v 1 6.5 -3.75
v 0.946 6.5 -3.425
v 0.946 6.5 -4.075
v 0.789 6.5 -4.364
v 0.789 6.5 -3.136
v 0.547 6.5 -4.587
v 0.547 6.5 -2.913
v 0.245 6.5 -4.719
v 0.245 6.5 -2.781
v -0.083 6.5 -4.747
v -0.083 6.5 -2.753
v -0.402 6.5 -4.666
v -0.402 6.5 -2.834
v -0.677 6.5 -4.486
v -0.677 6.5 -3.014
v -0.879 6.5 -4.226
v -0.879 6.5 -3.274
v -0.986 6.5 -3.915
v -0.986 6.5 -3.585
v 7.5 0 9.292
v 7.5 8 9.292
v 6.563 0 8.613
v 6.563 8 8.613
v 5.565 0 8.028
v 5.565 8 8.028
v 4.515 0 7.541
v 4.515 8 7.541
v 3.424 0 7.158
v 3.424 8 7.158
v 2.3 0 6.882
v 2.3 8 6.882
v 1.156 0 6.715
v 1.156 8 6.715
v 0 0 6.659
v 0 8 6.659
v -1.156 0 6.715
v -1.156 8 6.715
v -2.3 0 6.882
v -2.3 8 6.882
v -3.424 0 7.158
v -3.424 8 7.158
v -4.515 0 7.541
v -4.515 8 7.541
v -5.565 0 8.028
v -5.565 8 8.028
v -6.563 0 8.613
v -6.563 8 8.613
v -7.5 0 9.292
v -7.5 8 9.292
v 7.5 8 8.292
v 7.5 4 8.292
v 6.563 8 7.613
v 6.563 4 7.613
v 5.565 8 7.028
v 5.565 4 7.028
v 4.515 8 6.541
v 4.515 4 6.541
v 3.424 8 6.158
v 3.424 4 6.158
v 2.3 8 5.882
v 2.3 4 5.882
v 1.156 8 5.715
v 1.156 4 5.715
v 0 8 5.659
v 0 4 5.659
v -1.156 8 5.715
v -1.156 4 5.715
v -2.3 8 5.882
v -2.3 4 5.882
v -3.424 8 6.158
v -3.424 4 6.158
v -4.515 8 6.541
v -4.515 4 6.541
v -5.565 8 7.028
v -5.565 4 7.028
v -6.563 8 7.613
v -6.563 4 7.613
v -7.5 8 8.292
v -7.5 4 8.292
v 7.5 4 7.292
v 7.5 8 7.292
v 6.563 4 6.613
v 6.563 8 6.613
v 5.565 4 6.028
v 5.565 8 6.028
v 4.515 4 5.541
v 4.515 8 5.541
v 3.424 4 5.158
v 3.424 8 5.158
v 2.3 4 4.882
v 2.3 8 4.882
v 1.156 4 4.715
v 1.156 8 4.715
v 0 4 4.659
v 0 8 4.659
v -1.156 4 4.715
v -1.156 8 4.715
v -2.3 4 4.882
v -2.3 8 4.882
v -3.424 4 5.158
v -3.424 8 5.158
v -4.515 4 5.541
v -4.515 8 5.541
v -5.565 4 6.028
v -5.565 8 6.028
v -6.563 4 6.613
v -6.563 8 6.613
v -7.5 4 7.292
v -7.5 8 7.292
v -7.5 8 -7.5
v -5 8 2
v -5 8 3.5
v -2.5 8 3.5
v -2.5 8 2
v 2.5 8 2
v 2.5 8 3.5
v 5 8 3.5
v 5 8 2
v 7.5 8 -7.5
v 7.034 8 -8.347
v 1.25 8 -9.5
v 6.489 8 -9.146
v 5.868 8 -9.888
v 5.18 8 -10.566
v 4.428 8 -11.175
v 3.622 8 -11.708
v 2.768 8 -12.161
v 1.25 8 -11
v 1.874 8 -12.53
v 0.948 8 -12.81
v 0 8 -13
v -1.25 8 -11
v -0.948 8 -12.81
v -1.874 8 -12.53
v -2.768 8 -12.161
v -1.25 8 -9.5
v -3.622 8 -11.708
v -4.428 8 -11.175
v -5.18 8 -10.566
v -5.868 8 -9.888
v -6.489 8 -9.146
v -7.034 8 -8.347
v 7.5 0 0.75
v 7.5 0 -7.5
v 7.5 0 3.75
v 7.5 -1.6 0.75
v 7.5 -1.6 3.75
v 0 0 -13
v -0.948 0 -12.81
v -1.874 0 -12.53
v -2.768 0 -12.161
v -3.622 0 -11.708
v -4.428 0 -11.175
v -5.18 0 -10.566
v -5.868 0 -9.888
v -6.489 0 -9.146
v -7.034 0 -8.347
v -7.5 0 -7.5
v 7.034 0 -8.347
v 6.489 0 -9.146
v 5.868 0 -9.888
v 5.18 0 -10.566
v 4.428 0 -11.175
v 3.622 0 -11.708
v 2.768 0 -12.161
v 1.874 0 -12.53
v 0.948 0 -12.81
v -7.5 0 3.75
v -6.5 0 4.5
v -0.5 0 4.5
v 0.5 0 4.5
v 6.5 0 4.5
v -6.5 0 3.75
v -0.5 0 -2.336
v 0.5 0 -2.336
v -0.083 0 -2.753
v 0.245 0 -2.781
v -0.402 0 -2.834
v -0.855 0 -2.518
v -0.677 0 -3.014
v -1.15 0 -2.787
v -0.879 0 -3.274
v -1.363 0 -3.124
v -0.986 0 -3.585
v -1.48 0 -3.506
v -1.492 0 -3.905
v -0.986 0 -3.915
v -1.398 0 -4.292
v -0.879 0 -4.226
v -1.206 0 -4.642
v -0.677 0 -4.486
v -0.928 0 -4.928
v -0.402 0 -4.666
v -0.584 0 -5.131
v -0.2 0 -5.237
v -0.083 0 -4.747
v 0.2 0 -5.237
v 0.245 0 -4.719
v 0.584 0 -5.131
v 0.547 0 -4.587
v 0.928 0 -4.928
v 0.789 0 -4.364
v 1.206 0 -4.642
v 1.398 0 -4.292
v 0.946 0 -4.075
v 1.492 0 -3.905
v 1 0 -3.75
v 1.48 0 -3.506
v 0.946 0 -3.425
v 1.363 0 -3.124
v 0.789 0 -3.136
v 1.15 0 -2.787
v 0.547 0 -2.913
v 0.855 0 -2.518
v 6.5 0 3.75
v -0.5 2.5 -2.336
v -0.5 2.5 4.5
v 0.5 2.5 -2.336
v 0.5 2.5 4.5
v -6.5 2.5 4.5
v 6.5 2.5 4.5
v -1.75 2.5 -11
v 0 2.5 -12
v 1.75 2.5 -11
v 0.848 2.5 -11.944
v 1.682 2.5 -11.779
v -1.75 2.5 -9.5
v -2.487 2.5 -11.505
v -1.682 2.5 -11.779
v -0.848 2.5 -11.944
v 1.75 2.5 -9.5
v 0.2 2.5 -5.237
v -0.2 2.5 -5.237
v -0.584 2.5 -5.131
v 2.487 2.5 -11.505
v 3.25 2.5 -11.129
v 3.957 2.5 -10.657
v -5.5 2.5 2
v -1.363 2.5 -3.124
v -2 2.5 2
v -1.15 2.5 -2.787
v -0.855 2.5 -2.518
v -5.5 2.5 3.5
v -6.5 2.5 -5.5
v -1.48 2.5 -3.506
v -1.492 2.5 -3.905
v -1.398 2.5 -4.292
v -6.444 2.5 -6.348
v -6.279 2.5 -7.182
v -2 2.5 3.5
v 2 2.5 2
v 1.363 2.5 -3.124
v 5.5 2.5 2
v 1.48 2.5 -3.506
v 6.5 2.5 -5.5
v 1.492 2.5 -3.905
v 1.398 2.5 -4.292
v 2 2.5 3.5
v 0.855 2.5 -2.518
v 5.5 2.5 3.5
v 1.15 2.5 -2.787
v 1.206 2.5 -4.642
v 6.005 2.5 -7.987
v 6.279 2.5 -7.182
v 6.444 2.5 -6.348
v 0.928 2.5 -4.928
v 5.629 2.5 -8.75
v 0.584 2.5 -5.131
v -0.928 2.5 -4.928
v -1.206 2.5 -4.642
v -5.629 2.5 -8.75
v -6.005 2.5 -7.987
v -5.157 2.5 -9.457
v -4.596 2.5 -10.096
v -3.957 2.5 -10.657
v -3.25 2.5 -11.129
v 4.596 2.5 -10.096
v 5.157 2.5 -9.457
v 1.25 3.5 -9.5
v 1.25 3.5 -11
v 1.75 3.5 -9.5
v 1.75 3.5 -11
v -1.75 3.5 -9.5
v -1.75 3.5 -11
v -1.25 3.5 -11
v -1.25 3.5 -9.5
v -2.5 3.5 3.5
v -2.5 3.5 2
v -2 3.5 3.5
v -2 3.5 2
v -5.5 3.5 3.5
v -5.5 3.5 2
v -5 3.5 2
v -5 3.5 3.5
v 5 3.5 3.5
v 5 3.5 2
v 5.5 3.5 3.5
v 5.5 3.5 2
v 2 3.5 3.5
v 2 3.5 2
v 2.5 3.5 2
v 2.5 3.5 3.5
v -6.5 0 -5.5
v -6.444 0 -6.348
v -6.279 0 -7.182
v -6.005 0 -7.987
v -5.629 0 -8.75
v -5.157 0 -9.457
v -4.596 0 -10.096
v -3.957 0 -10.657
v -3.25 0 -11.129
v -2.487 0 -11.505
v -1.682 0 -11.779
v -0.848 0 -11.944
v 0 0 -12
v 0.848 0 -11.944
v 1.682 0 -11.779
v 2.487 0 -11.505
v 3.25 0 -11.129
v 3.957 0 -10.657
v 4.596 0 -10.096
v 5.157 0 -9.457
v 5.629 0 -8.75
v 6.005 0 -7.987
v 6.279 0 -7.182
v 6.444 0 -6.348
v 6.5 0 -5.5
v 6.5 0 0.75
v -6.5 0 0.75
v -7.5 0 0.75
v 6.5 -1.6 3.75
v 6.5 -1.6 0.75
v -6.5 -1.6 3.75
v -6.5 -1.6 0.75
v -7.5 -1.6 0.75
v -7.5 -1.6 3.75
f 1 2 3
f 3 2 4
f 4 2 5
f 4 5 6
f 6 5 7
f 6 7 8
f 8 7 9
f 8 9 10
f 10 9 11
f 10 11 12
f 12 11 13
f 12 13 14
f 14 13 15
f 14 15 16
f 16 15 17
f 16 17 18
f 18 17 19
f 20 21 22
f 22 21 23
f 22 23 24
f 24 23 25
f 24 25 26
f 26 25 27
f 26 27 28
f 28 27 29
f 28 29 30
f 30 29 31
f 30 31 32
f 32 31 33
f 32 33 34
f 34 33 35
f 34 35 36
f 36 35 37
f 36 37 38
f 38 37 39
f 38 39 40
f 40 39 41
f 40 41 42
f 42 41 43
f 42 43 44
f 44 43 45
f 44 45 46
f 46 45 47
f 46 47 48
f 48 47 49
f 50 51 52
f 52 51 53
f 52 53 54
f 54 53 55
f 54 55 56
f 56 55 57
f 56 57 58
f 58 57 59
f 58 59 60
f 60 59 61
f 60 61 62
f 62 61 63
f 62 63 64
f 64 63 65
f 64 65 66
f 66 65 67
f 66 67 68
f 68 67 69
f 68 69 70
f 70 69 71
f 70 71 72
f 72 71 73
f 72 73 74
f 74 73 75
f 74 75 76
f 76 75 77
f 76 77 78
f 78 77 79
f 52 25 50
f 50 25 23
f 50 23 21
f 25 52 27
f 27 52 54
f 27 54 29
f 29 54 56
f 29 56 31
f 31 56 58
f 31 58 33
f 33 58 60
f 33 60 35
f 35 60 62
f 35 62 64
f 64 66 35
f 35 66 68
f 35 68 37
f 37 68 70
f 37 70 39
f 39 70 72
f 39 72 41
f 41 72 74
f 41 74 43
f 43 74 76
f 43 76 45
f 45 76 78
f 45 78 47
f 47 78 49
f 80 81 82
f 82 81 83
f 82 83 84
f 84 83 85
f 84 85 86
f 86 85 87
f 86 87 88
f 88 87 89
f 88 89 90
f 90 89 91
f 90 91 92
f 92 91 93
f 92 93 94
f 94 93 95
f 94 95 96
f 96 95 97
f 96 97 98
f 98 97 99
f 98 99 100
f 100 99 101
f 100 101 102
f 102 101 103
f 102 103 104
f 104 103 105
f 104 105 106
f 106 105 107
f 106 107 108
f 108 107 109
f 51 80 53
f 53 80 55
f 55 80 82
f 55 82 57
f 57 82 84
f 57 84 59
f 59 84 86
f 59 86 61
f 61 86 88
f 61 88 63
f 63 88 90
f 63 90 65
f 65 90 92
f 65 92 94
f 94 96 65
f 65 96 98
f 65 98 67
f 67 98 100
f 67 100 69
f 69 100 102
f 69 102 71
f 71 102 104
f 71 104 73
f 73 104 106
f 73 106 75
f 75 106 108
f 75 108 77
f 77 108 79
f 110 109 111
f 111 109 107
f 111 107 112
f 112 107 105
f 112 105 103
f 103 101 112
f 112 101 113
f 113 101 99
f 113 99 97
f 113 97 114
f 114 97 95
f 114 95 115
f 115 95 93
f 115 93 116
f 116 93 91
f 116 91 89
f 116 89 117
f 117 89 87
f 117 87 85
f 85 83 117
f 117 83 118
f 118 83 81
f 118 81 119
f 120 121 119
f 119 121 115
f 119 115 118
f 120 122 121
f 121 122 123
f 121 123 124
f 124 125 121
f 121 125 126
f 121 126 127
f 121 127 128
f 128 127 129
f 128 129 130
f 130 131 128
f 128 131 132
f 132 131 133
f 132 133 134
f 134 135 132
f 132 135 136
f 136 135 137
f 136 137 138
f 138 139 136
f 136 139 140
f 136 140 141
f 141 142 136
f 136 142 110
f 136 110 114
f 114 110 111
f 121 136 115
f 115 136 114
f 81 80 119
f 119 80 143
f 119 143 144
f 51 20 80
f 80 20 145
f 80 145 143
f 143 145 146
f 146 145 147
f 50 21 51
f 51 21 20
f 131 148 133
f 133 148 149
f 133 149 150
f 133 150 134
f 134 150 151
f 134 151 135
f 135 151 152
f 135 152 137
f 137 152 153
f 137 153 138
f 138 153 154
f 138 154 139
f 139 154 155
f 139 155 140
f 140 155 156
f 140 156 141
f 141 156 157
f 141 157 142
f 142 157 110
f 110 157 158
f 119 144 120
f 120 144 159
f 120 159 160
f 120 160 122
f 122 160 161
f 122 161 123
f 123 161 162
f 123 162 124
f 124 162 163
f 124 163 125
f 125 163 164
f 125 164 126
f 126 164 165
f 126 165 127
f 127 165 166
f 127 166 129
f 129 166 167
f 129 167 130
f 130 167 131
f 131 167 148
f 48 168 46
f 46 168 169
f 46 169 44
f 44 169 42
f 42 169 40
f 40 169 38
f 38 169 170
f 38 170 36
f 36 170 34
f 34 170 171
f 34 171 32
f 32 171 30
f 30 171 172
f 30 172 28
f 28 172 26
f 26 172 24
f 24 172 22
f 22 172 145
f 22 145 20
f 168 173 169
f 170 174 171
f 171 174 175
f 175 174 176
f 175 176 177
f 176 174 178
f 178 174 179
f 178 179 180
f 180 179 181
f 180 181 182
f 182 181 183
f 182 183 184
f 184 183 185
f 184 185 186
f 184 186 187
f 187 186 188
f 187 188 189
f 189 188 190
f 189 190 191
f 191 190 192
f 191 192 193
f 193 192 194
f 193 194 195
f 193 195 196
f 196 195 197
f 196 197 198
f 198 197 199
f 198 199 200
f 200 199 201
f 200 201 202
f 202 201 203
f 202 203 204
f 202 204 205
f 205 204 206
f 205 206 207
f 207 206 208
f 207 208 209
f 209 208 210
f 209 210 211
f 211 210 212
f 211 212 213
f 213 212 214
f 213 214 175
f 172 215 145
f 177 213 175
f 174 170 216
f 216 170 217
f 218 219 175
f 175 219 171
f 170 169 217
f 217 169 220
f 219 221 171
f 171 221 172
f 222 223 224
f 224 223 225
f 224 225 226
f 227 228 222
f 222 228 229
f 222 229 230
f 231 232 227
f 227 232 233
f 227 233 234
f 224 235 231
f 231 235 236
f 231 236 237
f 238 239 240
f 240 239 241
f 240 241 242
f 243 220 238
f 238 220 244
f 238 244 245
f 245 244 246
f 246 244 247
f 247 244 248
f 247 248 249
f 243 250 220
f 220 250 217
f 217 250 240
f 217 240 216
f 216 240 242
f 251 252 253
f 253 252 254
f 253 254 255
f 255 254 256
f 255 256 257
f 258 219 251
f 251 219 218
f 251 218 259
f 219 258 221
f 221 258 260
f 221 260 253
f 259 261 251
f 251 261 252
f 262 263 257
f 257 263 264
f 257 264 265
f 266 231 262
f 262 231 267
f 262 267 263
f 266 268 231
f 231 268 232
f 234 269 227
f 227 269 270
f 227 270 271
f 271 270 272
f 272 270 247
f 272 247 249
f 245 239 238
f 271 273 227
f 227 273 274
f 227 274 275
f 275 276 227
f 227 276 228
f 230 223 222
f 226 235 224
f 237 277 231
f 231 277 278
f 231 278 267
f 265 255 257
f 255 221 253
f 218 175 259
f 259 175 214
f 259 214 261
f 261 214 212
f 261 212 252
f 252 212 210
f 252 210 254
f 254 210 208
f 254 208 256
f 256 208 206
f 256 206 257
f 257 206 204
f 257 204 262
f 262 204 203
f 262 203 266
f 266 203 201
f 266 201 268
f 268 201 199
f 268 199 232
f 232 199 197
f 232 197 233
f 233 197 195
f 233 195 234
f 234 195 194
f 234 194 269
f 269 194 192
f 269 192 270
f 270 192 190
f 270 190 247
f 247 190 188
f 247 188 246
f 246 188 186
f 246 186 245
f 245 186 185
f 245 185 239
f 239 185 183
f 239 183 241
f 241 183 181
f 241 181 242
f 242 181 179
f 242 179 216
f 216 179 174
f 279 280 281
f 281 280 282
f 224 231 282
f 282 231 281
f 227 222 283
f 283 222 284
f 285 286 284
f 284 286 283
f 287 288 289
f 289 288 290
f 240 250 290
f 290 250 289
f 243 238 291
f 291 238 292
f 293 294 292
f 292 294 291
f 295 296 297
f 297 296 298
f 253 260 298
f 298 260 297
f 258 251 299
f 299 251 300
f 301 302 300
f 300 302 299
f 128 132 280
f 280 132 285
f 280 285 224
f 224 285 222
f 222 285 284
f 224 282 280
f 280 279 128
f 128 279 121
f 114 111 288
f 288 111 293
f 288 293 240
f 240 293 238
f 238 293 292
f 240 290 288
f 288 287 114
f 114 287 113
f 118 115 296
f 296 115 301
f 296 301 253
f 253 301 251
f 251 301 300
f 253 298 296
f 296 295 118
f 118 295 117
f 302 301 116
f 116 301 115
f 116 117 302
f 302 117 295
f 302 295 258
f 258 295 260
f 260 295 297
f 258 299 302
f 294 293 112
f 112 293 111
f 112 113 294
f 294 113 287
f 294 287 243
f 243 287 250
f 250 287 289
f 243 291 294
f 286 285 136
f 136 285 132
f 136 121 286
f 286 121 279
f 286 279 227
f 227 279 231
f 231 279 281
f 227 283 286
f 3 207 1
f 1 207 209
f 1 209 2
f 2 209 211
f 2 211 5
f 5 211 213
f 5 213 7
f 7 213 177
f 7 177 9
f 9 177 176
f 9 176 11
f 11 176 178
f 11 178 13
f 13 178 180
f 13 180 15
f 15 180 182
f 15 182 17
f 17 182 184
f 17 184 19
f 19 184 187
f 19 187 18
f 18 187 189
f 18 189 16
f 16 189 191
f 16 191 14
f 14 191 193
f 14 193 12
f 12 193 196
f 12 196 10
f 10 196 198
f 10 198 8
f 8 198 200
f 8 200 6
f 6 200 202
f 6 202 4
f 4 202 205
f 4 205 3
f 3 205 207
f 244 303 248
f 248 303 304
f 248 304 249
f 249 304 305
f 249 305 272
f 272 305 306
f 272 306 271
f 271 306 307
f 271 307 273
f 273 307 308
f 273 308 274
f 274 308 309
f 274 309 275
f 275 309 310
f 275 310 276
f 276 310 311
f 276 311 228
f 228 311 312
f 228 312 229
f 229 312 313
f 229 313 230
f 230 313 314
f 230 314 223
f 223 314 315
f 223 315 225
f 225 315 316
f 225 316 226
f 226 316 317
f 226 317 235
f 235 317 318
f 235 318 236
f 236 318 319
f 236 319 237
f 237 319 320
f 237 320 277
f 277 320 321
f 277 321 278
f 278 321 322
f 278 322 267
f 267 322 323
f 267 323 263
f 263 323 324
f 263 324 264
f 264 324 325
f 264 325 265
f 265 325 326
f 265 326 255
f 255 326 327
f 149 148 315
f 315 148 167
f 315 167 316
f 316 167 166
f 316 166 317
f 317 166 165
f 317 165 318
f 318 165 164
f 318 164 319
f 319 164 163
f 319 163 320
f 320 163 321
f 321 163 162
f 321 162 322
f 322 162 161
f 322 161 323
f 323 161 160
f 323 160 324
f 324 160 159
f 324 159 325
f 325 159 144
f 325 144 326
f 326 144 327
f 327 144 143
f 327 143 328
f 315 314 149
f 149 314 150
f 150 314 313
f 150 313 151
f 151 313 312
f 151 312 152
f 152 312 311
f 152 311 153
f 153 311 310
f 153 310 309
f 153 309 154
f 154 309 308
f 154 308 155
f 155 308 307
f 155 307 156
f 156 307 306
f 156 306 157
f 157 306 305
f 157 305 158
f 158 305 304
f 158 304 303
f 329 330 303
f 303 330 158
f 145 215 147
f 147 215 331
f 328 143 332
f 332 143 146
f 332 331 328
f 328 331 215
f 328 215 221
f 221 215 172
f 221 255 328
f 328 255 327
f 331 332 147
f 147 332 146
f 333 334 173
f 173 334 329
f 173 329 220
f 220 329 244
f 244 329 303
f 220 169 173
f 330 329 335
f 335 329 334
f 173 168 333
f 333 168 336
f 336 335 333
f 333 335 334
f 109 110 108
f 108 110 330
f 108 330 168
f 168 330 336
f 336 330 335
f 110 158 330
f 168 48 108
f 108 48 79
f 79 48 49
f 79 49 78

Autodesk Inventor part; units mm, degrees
ref_plane "YZ Plane" through (0, 0, 0) normal (1, 0, 0) x (0, 1, 0)
ref_plane "XZ Plane" through (0, 0, 0) normal (0, 1, 0) x (-1, 0, 0)
ref_plane "XY Plane" through (0, 0, 0) normal (0, 0, 1) x (1, 0, 0)
sketch "Sketch1" plane through (0, 0, 0) normal (0, 1, 0) x (-1, 0, 0)
  line L0 (-7.5, 5.5) -> (7.5, 5.5)
  line L1 (7.5, 5.5) -> (7.5, -5.5)
  line L2 (7.5, -5.5) -> (-7.5, -5.5)
  line L3 (-7.5, -5.5) -> (-7.5, 5.5)
  line L4 (-7.5, 5.5) -> (7.5, -5.5) construction
  line L5 (7.5, 5.5) -> (-7.5, -5.5) construction
  circle A0 centre (0, -5.5) radius 7.5 construction
  arc A1 (-7.5, -5.5) -> (7.5, -5.5) centre (0, -5.5) ccw
  point P0 (0, 0)
  dimension "d0" = 11
  dimension "d1" = 15
extrude "Extrusion1" add sketch "Sketch1" along normal blind 8
sketch "Sketch2" plane through (0, 0, 0) normal (0, -1, 0) x (1, 0, 0)
  line L0 (7.5, 9.25) -> (-7.5, 9.25)
  line L1 (-7.5, 9.25) -> (-7.5, -20.75)
  line L2 (-7.5, -20.75) -> (7.5, -20.75)
  line L3 (7.5, -20.75) -> (7.5, 9.25)
  line L4 (7.5, 9.25) -> (-7.5, -20.75) construction
  line L5 (-7.5, 9.25) -> (7.5, -20.75) construction
  line L6 (-7.5, 5.5) -> (7.5, 5.5) projected
  line L7 (7, 8.75) -> (-7, 8.75) construction
  line L8 (-7, 8.75) -> (-7, -20.25) construction
  line L9 (-7, -20.25) -> (7, -20.25) construction
  line L10 (7, -20.25) -> (7, 8.75) construction
  line L11 (7, 8.75) -> (-7, -20.25) construction
  line L12 (-7, 8.75) -> (7, -20.25) construction
  point P0 (0, 0)
  point P1 (0, -5.75)
  dimension "d4" = 15
  dimension "d5" = 30
  dimension "d6" = 3.75
  dimension "d18" = 0.5
  dimension "d19" = 0.5
sketch "Sketch4" plane through (0, 0, 0) normal (0, -1, 0) x (1, 0, 0)
  line L0 (-7.5, -5.5) -> (-7.5, 5.5) projected
  line L1 (-7.5, 3.75) -> (-6.5, 3.75)
  line L2 (-6.5, 3.75) -> (-6.5, 0.75)
  line L3 (-6.5, 0.75) -> (-7.5, 0.75)
  line L4 (-7.5, 0.75) -> (-7.5, 3.75)
  line L5 (7.5, 5.5) -> (7.5, -5.5) projected
  line L6 (7.5, 0.75) -> (6.5, 0.75)
  line L7 (6.5, 0.75) -> (6.5, 3.75)
  line L8 (6.5, 3.75) -> (7.5, 3.75)
  line L9 (7.5, 3.75) -> (7.5, 0.75)
  line L10 (-7.5, -20.25) -> (7.5, -20.25) construction
  line L11 (7.5, -20.25) -> (7.5, 9.75) construction
  line L12 (7.5, 9.75) -> (-7.5, 9.75) construction
  line L13 (-7.5, 9.75) -> (-7.5, -20.25) construction
  line L14 (-7.5, -20.25) -> (7.5, 9.75) construction
  line L15 (7.5, -20.25) -> (-7.5, 9.75) construction
  line L16 (-7.5, 5.5) -> (7.5, 5.5) construction
  arc A0 (-7.5, -5.5) -> (7.5, -5.5) centre (0, -5.5) ccw construction
  point P0 (0, 0)
  point P1 (0, -5.25)
  point P2 (0, -13)
  point P3 (-7, 3.75)
  point P4 (-7.5, 0.75)
  point P5 (-7, 0.75)
  point P6 (7.5, 3.75)
  point P7 (-7.5, 0.75)
  dimension "d20" = 1
  dimension "d21" = 3
  dimension "d22" = 1
  dimension "d23" = 3
  dimension "d24" = 15
  dimension "d25" = 30
  dimension "d27" = 7.25
  dimension "d106" = 0.75
extrude "Extrusion3" add sketch "Sketch4" along normal blind 1.6
sketch "Sketch6" plane through (0, 0, 0) normal (0, -1, 0) x (1, 0, 0)
  line L0 (7.5, 11.25) -> (-7.5, 11.25)
  line L1 (-7.5, 11.25) -> (-7.5, -18.75)
  line L2 (-7.5, -18.75) -> (7.5, -18.75)
  line L3 (7.5, -18.75) -> (7.5, 11.25)
  line L4 (7.5, 11.25) -> (-7.5, -18.75) construction
  line L5 (-7.5, 11.25) -> (7.5, -18.75) construction
  line L6 (7, 10.75) -> (-7, 10.75) construction
  line L7 (-7, 10.75) -> (-7, -18.25) construction
  line L8 (-7, -18.25) -> (7, -18.25) construction
  line L9 (7, -18.25) -> (7, 10.75) construction
  line L10 (7, 10.75) -> (-7, -18.25) construction
  line L11 (-7, 10.75) -> (7, -18.25) construction
  circle A0 centre (0, -3.75) radius 1
  circle A1 centre (0, -3.75) radius 1.5
  line L12 (-6.5, 4.5) -> (6.5, 4.5)
  line L13 (6.5, 4.5) -> (6.5, -5.5)
  line L14 (6.5, -5.5) -> (-6.5, -5.5)
  line L15 (-6.5, -5.5) -> (-6.5, 4.5)
  line L16 (-7.5, 5.5) -> (7.5, 5.5) projected
  arc A2 (-7.5, -5.5) -> (7.5, -5.5) centre (0, -5.5) ccw projected
  circle A3 centre (0, -5.5) radius 6.5
  point P0 (0, 0)
  point P1 (-7.5, -3.75)
  point P2 (6.5, -5.5)
  dimension "d31" = 15
  dimension "d32" = 30
  dimension "d34" = 0.5
  dimension "d35" = 0.5
  dimension "d36" = 2
  dimension "d37" = 0.5
  dimension "d38" = 1
  dimension "d39" = 1
  dimension "d40" = 1
  dimension "d41" = 1
  dimension "d107" = 3.75
extrude "Extrusion4" cut sketch "Sketch6" against normal blind 2.5 contours A0 | L12 L13 A3 L15 | A3 L14 | L14 A3
sketch "Sketch10" plane through (0, 8, 0) normal (0, 1, 0) x (1, 0, 0)
  point P0 (0, 0)
sketch "Sketch11" plane through (0, 0, 0) normal (0, -1, 0) x (1, 0, 0)
  line L0 (-5, 3.5) -> (-2.5, 3.5)
  line L1 (-2.5, 3.5) -> (-2.5, 2)
  line L2 (-2.5, 2) -> (-5, 2)
  line L3 (-5, 2) -> (-5, 3.5)
  line L4 (2.5, 3.5) -> (5, 3.5)
  line L5 (5, 3.5) -> (5, 2)
  line L6 (5, 2) -> (2.5, 2)
  line L7 (2.5, 2) -> (2.5, 3.5)
  line L8 (-6.5, 3.75) -> (-7.5, 3.75) projected
  line L9 (-6.5, 0.75) -> (-6.5, 3.75) projected
  line L10 (6.5, 3.75) -> (6.5, 0.75) projected
  line L11 (-6.5, 4.5) -> (6.5, 4.5) projected
  line L12 (-1.25, -11) -> (1.25, -11)
  line L13 (1.25, -11) -> (1.25, -9.5)
  line L14 (1.25, -9.5) -> (-1.25, -9.5)
  line L15 (-1.25, -9.5) -> (-1.25, -11)
  circle A0 centre (0, -3.75) radius 1 projected
  point P0 (0, 0)
  point P1 (-3.75, 3.5)
  point P2 (3.75, 3.5)
  point P3 (1.25, -10.25)
  point P4 (2.5, 2.75)
  point P5 (0, -9.5)
  point P6 (3.75, 2)
  point P7 (-2.5, 2.75)
  dimension "d51" = 2.5
  dimension "d52" = 1.5
  dimension "d55" = 2.75
  dimension "d56" = 2.75
  dimension "d60" = 13
  dimension "d61" = 3.75
  dimension "d62" = 3.75
  dimension "d103" = 6.5
  dimension "d104" = 6.5
extrude "Extrusion8" cut sketch "Sketch11" against normal blind 10 contours L0 L1 L2 L3 | L4 L5 L6 L7 | L15 L14 L13 L12
sketch "Sketch12" plane through (0, 2.5, 0) normal (0, -1, 0) x (1, 0, 0)
  line L0 (5, 2) -> (5, 3.5) construction
  line L1 (2.5, 2) -> (5, 2) construction
  line L2 (5, 3.5) -> (2.5, 3.5) construction
  line L3 (2.5, 3.5) -> (2.5, 2) construction
  line L4 (2.5, 2) -> (5, 2) construction
  line L5 (5, 2) -> (5, 3.5) construction
  line L6 (-2.5, 2) -> (-2.5, 3.5) construction
  line L7 (-2.5, 2) -> (-5, 2) construction
  line L8 (-2.5, 3.5) -> (-5, 3.5) construction
  line L9 (-5, 3.5) -> (-5, 2) construction
  line L10 (-5, 2) -> (-2.5, 2) construction
  line L11 (-2.5, 2) -> (-2.5, 3.5) construction
  line L12 (-1.25, -9.5) -> (1.25, -9.5) construction
  line L13 (-1.25, -9.5) -> (-1.25, -11) construction
  line L14 (1.25, -9.5) -> (-1.25, -9.5) construction
  line L15 (-1.25, -9.5) -> (-1.25, -11) construction
  line L16 (-1.25, -11) -> (1.25, -11) construction
  line L17 (1.25, -11) -> (1.25, -9.5) construction
  line L18 (5.5, 3.5) -> (2, 3.5)
  line L19 (2, 3.5) -> (2, 2)
  line L20 (2, 2) -> (5.5, 2)
  line L21 (5.5, 2) -> (5.5, 3.5)
  line L22 (1.75, -9.5) -> (-1.75, -9.5)
  line L23 (-1.75, -9.5) -> (-1.75, -11)
  line L24 (-1.75, -11) -> (1.75, -11)
  line L25 (1.75, -11) -> (1.75, -9.5)
  line L26 (-2, 3.5) -> (-5.5, 3.5)
  line L27 (-5.5, 3.5) -> (-5.5, 2)
  line L28 (-5.5, 2) -> (-2, 2)
  line L29 (-2, 2) -> (-2, 3.5)
  point P0 (0, 0)
  point P1 (-2.5, 2.75)
  point P2 (-2, 2.75)
  point P3 (-3.75, 2)
  point P4 (-3.75, 2)
  point P5 (-3.75, 3.5)
  point P6 (-3.75, 3.5)
  point P7 (-5, 2.75)
  point P8 (-5.5, 2.75)
  point P9 (1.25, -10.25)
  point P10 (1.75, -10.25)
  point P11 (0, -11)
  point P12 (-1.25, -10.25)
  dimension "d63" = 0.5
  dimension "d64" = 0
  dimension "d65" = 0
  dimension "d67" = 0.5
  dimension "d68" = 0
  dimension "d69" = 0
  dimension "d70" = 0.5
  dimension "d71" = 0.5
  dimension "d72" = 0
  dimension "d73" = 0
  dimension "d74" = 0.5
  dimension "d96" = 0.5
extrude "Extrusion9" cut sketch "Sketch12" against normal blind 1
sketch "Sketch16" plane through (0, 2.5, 0) normal (0, -1, 0) x (1, 0, 0)
  line L0 (-6.5, -5.5) -> (-6.5, 4.5) construction
  line L1 (-6.5, 4.5) -> (6.5, 4.5) construction
  line L2 (-6.5, 4.5) -> (6.5, 4.5) construction
  line L3 (-0.5, 4.5) -> (0.5, 4.5)
  line L4 (0.5, 4.5) -> (0.5, -2.75)
  line L5 (0.5, -2.75) -> (-0.5, -2.75)
  line L6 (-0.5, -2.75) -> (-0.5, 4.5)
  circle A0 centre (0, -3.75) radius 1.5 construction
  circle A1 centre (0, -3.75) radius 1.75 construction
  line L7 (-6.5, -2.75) -> (6.5174, -2.75) construction
  circle A2 centre (0, -3.75) radius 1.5 construction
  circle A3 centre (0, -3.75) radius 1 construction
  line L8 (6.5, 0.75) -> (6.5, -5.5) projected
  line L9 (-6.5, -5.873) -> (6.5, -5.873)
  line L10 (6.5, -5.873) -> (6.5, -6.873)
  line L11 (6.5, -6.873) -> (-6.5, -6.873)
  line L12 (-6.5, -6.873) -> (-6.5, -5.873)
  point P0 (0, 0)
  point P1 (0, 4.5)
  point P2 (0.0087, -2.75)
  dimension "d94" = 1
  dimension "d95" = 1
extrude "Extrusion10" add sketch "Sketch16" along normal blind 2.5 contours L3 L4 L5 L6
sketch "Sketch19" plane through (-7.5, 0, 5.5) normal (0, 0, 1) x (1, 0, 0)
  line L0 (15, 0) -> (15, 8) projected
  line L1 (0, 8) -> (15, 8)
  line L2 (15, 8) -> (15, 0)
  line L3 (15, 0) -> (0, 0)
  line L4 (0, 0) -> (0, 8)
  point P0 (7.5, 0)
extrude "Extrusion13" add sketch "Sketch19" along normal blind 6
sketch "Sketch18" plane through (0, 8, 0) normal (0, 1, 0) x (1, 0, 0)
  line L0 (-7.5, -3.75) -> (-7.5, -5.5) projected
  line L1 (-7.5, -5.5) -> (-7.5, -8.2917)
  line L2 (7.5, -5.5) -> (7.5, -8.2917)
  arc A0 (7.5, -8.2917) -> (-7.5, -8.2917) centre (0, -17.6592) ccw
  line L3 (-7.5, -5.5) -> (0, -3.75)
  line L4 (-7.5, -5.5) -> (7.5, -5.5) projected
  line L5 (0, -3.75) -> (7.5, -5.5)
  line L6 (-7.5, -8.2917) -> (-7.5, -17.8663)
  line L7 (-7.5, -17.8663) -> (8.2387, -17.8663)
  line L8 (8.2387, -17.8663) -> (7.5, -8.2917)
  line L9 (-7.5, -8.2917) -> (-7.5, -5.5)
  point P0 (0, 0)
  point P1 (3.395, -5.5)
  point P2 (-3.395, -5.5)
  dimension "d108" = 12
extrude "Extrusion12" cut sketch "Sketch18" against normal blind 8 contours A0 L8 L7 L6
sketch "Sketch21" plane through (0, 8, 0) normal (0, 1, 0) x (1, 0, 0)
  line L0 (-7.5, 5.5) -> (-7.5, -8.2917) projected
  line L1 (-7.5, 5.5) -> (-4.5586, 5.5)
  line L2 (-4.5586, 5.5) -> (-4.5586, 13.4633)
  line L3 (-4.5586, 13.4633) -> (-7.5, 13.4633)
  line L4 (-7.5, 13.4633) -> (-7.5, 5.5)
  arc A0 (7.5, 5.5) -> (-7.5, 5.5) centre (0, 5.5) ccw projected
  line L5 (7.5, 5.5) -> (3.8632, 5.5)
  line L6 (3.8632, 5.5) -> (3.8632, 13.1156)
  line L7 (3.8632, 13.1156) -> (7.5, 13.1156)
  line L8 (7.5, 13.1156) -> (7.5, 5.5)
  point P0 (0, 0)
  point P1 (3.8632, 11.9285)
  point P2 (-4.5586, 11.4556)
  point P3 (-7.5, -5.5)
extrude "Extrusion15" add sketch "Sketch21" against normal blind 8 contours L6 L7 L8 A0 | L4 L3 L2 A0
sketch "Sketch20" plane through (0, 8, 0) normal (0, 1, 0) x (1, 0, 0)
  arc A0 (7.5, 5.5) -> (-7.5, 5.5) centre (0, 5.5) ccw projected
  line L0 (-7.5, 5.5) -> (-7.5, 7.5)
  line L1 (7.5, 5.5) -> (7.5, 7.5)
  arc A1 (0, 13) -> (-7.5, 7.5) centre (1.4853, 3.1109) ccw
  arc A2 (7.5, 7.5) -> (0, 13) centre (-1.4853, 3.1109) ccw
  line L2 (-7.5, 7.5) -> (-7.5, 19.3065)
  line L3 (-7.5, 7.5) -> (4.3065, 7.5) construction
  line L4 (-7.5, 19.3065) -> (7.5, 19.3065)
  line L5 (7.5, 19.3065) -> (7.5, 7.5)
  point P0 (0, 0)
  point P1 (-6.7259, 8.8184)
  point P2 (6.7259, 8.8184)
  dimension "d113" = 2
  dimension "d114" = 10
  dimension "d115" = 90
  dimension "d116" = 90
extrude "Extrusion14" cut sketch "Sketch20" against normal blind 10 contours A2 A0 | A0 A1 L2 L4 L5 A2 | A1 A0
sketch "Sketch22" plane through (0, 8, 0) normal (0, 1, 0) x (1, 0, 0)
  line L0 (7.5, 7.5) -> (7.5, -8.2917) projected
  line L1 (-7.5, 7.5) -> (-7.5, -8.2917) projected
  arc A0 (7.5, -7.2917) -> (-7.5, -7.2917) centre (0, -16.6592) ccw
  line L2 (-7.5, -7.2917) -> (7.5, -7.2917) construction
  line L3 (-7.5, -7.2917) -> (7.5, -7.2917) construction
  arc A1 (7.5, -8.2917) -> (-7.5, -8.2917) centre (0, -17.6592) ccw projected
  arc A2 (7.5, -9.2917) -> (-7.5, -9.2917) centre (0, -18.6592) ccw
  line L4 (-7.5, -9.2917) -> (7.5, -9.2917) construction
  line L5 (-7.5, -9.2917) -> (7.5, -9.2917) construction
  arc A3 (0, 13) -> (-7.5, 7.5) centre (1.4853, 3.1109) ccw projected
  line L6 (-7.5, -9.2917) -> (-7.5, -8.2917)
  line L7 (7.5, -9.2917) -> (7.5, -8.2917)
  arc A4 (7.5, -8.2917) -> (-7.5, -8.2917) centre (0, -17.6592) ccw
  line L8 (7.5, -7.2917) -> (7.5, -8.2917)
  line L9 (-7.5, -7.2917) -> (-7.5, -8.2917)
  point P0 (0, 0)
  point P1 (0, -4.6592)
  point P2 (0, -5.6592)
  point P3 (0, -6.6592)
  point P4 (0, -5.6592)
  dimension "d121" = 0
  dimension "d122" = 1
  dimension "d123" = 1
  dimension "d124" = 0
  dimension "d132" = 1
  dimension "d133" = 1
extrude "Extrusion16" cut sketch "Sketch22" against normal blind 4 contours L0 A1 L1 A0
sketch "Sketch23" plane through (0, 8, 0) normal (0, 1, 0) x (1, 0, 0)
  arc A0 (7.5, -7.2917) -> (-7.5, -7.2917) centre (0, -16.6592) ccw
  line L0 (-7.5, -7.2917) -> (7.5, -7.2917) construction
  line L1 (-7.5, -7.2917) -> (7.5, -7.2917) construction
  arc A1 (7.5, -9.2917) -> (-7.5, -9.2917) centre (0, -18.6592) ccw
  line L2 (-7.5, -9.2917) -> (7.5, -9.2917) construction
  line L3 (-7.5, -9.2917) -> (7.5, -9.2917) construction
  line L4 (-7.5, -9.2917) -> (-7.5, -8.2917)
  line L5 (7.5, -9.2917) -> (7.5, -8.2917)
  arc A2 (7.5, -8.2917) -> (-7.5, -8.2917) centre (0, -17.6592) ccw
  line L6 (7.5, -7.2917) -> (7.5, -8.2917)
  line L7 (-7.5, -7.2917) -> (-7.5, -8.2917)
  point P0 (0, 0)
  point P1 (0, -4.6592)
  point P2 (0, -5.6592)
  point P3 (0, -6.6592)
  point P4 (0, -5.6592)
  dimension "d134" = 0
  dimension "d135" = 1
  dimension "d136" = 1
  dimension "d137" = 0
  dimension "d138" = 1
  dimension "d139" = 1
extrude "Extrusion17" add sketch "Sketch23" against normal blind 8 contours L5 A1 L4 A2
sketch "Sketch24" plane through (0, 2.5, -3.75) normal (0, -1, 0) x (1, 0, 0)
  circle A0 centre (0, 0) radius 1 projected
  circle A1 centre (0, 0) radius 1
  point P0 (0, 3.75)
extrude "Extrusion18" cut sketch "Sketch24" against normal blind 4
sketch "Sketch14" plane through (0, 2.5, 0) normal (0, -1, 0) x (1, 0, 0)
  line L0 (5, 2.75) -> (2.5, 2.75) construction
  line L1 (2.5, 2.75) -> (2.5, 1.25) construction
  line L2 (2.5, 1.25) -> (5, 1.25) construction
  line L3 (5, 1.25) -> (5, 2.75) construction
  line L4 (5.5, 3.25) -> (2, 3.25)
  line L5 (2, 3.25) -> (2, 0.75)
  line L6 (2, 0.75) -> (5.5, 0.75)
  line L7 (5.5, 0.75) -> (5.5, 3.25)
  dimension "d86" = 0.5
  dimension "d87" = 0.5
sketch "Sketch15" plane through (0, 3.5, 0) normal (0, -1, 0) x (1, 0, 0)
  line L0 (5, 2.75) -> (2.5, 2.75)
  line L1 (2.5, 2.75) -> (2.5, 1.25)
  line L2 (2.5, 1.25) -> (5, 1.25)
  line L3 (5, 1.25) -> (5, 2.75)
  point P0 (0, 0)
sketch "Sketch8" plane through (0, 0, -3.75) normal (0, -1, 0) x (1, 0, 0)
  circle A0 centre (0, 0) radius 1.75
  circle A1 centre (0, 0) radius 1.5 projected
  circle A2 centre (0, 0) radius 1.5
  point P0 (0, 3.75)
  dimension "d46" = 0.25
sketch "Sketch7" plane through (0, 2.5, -3.75) normal (0, -1, 0) x (1, 0, 0)
  circle A0 centre (0, 0) radius 1.25
  point P0 (0, 3.75)
properties part number "XORGATE"
